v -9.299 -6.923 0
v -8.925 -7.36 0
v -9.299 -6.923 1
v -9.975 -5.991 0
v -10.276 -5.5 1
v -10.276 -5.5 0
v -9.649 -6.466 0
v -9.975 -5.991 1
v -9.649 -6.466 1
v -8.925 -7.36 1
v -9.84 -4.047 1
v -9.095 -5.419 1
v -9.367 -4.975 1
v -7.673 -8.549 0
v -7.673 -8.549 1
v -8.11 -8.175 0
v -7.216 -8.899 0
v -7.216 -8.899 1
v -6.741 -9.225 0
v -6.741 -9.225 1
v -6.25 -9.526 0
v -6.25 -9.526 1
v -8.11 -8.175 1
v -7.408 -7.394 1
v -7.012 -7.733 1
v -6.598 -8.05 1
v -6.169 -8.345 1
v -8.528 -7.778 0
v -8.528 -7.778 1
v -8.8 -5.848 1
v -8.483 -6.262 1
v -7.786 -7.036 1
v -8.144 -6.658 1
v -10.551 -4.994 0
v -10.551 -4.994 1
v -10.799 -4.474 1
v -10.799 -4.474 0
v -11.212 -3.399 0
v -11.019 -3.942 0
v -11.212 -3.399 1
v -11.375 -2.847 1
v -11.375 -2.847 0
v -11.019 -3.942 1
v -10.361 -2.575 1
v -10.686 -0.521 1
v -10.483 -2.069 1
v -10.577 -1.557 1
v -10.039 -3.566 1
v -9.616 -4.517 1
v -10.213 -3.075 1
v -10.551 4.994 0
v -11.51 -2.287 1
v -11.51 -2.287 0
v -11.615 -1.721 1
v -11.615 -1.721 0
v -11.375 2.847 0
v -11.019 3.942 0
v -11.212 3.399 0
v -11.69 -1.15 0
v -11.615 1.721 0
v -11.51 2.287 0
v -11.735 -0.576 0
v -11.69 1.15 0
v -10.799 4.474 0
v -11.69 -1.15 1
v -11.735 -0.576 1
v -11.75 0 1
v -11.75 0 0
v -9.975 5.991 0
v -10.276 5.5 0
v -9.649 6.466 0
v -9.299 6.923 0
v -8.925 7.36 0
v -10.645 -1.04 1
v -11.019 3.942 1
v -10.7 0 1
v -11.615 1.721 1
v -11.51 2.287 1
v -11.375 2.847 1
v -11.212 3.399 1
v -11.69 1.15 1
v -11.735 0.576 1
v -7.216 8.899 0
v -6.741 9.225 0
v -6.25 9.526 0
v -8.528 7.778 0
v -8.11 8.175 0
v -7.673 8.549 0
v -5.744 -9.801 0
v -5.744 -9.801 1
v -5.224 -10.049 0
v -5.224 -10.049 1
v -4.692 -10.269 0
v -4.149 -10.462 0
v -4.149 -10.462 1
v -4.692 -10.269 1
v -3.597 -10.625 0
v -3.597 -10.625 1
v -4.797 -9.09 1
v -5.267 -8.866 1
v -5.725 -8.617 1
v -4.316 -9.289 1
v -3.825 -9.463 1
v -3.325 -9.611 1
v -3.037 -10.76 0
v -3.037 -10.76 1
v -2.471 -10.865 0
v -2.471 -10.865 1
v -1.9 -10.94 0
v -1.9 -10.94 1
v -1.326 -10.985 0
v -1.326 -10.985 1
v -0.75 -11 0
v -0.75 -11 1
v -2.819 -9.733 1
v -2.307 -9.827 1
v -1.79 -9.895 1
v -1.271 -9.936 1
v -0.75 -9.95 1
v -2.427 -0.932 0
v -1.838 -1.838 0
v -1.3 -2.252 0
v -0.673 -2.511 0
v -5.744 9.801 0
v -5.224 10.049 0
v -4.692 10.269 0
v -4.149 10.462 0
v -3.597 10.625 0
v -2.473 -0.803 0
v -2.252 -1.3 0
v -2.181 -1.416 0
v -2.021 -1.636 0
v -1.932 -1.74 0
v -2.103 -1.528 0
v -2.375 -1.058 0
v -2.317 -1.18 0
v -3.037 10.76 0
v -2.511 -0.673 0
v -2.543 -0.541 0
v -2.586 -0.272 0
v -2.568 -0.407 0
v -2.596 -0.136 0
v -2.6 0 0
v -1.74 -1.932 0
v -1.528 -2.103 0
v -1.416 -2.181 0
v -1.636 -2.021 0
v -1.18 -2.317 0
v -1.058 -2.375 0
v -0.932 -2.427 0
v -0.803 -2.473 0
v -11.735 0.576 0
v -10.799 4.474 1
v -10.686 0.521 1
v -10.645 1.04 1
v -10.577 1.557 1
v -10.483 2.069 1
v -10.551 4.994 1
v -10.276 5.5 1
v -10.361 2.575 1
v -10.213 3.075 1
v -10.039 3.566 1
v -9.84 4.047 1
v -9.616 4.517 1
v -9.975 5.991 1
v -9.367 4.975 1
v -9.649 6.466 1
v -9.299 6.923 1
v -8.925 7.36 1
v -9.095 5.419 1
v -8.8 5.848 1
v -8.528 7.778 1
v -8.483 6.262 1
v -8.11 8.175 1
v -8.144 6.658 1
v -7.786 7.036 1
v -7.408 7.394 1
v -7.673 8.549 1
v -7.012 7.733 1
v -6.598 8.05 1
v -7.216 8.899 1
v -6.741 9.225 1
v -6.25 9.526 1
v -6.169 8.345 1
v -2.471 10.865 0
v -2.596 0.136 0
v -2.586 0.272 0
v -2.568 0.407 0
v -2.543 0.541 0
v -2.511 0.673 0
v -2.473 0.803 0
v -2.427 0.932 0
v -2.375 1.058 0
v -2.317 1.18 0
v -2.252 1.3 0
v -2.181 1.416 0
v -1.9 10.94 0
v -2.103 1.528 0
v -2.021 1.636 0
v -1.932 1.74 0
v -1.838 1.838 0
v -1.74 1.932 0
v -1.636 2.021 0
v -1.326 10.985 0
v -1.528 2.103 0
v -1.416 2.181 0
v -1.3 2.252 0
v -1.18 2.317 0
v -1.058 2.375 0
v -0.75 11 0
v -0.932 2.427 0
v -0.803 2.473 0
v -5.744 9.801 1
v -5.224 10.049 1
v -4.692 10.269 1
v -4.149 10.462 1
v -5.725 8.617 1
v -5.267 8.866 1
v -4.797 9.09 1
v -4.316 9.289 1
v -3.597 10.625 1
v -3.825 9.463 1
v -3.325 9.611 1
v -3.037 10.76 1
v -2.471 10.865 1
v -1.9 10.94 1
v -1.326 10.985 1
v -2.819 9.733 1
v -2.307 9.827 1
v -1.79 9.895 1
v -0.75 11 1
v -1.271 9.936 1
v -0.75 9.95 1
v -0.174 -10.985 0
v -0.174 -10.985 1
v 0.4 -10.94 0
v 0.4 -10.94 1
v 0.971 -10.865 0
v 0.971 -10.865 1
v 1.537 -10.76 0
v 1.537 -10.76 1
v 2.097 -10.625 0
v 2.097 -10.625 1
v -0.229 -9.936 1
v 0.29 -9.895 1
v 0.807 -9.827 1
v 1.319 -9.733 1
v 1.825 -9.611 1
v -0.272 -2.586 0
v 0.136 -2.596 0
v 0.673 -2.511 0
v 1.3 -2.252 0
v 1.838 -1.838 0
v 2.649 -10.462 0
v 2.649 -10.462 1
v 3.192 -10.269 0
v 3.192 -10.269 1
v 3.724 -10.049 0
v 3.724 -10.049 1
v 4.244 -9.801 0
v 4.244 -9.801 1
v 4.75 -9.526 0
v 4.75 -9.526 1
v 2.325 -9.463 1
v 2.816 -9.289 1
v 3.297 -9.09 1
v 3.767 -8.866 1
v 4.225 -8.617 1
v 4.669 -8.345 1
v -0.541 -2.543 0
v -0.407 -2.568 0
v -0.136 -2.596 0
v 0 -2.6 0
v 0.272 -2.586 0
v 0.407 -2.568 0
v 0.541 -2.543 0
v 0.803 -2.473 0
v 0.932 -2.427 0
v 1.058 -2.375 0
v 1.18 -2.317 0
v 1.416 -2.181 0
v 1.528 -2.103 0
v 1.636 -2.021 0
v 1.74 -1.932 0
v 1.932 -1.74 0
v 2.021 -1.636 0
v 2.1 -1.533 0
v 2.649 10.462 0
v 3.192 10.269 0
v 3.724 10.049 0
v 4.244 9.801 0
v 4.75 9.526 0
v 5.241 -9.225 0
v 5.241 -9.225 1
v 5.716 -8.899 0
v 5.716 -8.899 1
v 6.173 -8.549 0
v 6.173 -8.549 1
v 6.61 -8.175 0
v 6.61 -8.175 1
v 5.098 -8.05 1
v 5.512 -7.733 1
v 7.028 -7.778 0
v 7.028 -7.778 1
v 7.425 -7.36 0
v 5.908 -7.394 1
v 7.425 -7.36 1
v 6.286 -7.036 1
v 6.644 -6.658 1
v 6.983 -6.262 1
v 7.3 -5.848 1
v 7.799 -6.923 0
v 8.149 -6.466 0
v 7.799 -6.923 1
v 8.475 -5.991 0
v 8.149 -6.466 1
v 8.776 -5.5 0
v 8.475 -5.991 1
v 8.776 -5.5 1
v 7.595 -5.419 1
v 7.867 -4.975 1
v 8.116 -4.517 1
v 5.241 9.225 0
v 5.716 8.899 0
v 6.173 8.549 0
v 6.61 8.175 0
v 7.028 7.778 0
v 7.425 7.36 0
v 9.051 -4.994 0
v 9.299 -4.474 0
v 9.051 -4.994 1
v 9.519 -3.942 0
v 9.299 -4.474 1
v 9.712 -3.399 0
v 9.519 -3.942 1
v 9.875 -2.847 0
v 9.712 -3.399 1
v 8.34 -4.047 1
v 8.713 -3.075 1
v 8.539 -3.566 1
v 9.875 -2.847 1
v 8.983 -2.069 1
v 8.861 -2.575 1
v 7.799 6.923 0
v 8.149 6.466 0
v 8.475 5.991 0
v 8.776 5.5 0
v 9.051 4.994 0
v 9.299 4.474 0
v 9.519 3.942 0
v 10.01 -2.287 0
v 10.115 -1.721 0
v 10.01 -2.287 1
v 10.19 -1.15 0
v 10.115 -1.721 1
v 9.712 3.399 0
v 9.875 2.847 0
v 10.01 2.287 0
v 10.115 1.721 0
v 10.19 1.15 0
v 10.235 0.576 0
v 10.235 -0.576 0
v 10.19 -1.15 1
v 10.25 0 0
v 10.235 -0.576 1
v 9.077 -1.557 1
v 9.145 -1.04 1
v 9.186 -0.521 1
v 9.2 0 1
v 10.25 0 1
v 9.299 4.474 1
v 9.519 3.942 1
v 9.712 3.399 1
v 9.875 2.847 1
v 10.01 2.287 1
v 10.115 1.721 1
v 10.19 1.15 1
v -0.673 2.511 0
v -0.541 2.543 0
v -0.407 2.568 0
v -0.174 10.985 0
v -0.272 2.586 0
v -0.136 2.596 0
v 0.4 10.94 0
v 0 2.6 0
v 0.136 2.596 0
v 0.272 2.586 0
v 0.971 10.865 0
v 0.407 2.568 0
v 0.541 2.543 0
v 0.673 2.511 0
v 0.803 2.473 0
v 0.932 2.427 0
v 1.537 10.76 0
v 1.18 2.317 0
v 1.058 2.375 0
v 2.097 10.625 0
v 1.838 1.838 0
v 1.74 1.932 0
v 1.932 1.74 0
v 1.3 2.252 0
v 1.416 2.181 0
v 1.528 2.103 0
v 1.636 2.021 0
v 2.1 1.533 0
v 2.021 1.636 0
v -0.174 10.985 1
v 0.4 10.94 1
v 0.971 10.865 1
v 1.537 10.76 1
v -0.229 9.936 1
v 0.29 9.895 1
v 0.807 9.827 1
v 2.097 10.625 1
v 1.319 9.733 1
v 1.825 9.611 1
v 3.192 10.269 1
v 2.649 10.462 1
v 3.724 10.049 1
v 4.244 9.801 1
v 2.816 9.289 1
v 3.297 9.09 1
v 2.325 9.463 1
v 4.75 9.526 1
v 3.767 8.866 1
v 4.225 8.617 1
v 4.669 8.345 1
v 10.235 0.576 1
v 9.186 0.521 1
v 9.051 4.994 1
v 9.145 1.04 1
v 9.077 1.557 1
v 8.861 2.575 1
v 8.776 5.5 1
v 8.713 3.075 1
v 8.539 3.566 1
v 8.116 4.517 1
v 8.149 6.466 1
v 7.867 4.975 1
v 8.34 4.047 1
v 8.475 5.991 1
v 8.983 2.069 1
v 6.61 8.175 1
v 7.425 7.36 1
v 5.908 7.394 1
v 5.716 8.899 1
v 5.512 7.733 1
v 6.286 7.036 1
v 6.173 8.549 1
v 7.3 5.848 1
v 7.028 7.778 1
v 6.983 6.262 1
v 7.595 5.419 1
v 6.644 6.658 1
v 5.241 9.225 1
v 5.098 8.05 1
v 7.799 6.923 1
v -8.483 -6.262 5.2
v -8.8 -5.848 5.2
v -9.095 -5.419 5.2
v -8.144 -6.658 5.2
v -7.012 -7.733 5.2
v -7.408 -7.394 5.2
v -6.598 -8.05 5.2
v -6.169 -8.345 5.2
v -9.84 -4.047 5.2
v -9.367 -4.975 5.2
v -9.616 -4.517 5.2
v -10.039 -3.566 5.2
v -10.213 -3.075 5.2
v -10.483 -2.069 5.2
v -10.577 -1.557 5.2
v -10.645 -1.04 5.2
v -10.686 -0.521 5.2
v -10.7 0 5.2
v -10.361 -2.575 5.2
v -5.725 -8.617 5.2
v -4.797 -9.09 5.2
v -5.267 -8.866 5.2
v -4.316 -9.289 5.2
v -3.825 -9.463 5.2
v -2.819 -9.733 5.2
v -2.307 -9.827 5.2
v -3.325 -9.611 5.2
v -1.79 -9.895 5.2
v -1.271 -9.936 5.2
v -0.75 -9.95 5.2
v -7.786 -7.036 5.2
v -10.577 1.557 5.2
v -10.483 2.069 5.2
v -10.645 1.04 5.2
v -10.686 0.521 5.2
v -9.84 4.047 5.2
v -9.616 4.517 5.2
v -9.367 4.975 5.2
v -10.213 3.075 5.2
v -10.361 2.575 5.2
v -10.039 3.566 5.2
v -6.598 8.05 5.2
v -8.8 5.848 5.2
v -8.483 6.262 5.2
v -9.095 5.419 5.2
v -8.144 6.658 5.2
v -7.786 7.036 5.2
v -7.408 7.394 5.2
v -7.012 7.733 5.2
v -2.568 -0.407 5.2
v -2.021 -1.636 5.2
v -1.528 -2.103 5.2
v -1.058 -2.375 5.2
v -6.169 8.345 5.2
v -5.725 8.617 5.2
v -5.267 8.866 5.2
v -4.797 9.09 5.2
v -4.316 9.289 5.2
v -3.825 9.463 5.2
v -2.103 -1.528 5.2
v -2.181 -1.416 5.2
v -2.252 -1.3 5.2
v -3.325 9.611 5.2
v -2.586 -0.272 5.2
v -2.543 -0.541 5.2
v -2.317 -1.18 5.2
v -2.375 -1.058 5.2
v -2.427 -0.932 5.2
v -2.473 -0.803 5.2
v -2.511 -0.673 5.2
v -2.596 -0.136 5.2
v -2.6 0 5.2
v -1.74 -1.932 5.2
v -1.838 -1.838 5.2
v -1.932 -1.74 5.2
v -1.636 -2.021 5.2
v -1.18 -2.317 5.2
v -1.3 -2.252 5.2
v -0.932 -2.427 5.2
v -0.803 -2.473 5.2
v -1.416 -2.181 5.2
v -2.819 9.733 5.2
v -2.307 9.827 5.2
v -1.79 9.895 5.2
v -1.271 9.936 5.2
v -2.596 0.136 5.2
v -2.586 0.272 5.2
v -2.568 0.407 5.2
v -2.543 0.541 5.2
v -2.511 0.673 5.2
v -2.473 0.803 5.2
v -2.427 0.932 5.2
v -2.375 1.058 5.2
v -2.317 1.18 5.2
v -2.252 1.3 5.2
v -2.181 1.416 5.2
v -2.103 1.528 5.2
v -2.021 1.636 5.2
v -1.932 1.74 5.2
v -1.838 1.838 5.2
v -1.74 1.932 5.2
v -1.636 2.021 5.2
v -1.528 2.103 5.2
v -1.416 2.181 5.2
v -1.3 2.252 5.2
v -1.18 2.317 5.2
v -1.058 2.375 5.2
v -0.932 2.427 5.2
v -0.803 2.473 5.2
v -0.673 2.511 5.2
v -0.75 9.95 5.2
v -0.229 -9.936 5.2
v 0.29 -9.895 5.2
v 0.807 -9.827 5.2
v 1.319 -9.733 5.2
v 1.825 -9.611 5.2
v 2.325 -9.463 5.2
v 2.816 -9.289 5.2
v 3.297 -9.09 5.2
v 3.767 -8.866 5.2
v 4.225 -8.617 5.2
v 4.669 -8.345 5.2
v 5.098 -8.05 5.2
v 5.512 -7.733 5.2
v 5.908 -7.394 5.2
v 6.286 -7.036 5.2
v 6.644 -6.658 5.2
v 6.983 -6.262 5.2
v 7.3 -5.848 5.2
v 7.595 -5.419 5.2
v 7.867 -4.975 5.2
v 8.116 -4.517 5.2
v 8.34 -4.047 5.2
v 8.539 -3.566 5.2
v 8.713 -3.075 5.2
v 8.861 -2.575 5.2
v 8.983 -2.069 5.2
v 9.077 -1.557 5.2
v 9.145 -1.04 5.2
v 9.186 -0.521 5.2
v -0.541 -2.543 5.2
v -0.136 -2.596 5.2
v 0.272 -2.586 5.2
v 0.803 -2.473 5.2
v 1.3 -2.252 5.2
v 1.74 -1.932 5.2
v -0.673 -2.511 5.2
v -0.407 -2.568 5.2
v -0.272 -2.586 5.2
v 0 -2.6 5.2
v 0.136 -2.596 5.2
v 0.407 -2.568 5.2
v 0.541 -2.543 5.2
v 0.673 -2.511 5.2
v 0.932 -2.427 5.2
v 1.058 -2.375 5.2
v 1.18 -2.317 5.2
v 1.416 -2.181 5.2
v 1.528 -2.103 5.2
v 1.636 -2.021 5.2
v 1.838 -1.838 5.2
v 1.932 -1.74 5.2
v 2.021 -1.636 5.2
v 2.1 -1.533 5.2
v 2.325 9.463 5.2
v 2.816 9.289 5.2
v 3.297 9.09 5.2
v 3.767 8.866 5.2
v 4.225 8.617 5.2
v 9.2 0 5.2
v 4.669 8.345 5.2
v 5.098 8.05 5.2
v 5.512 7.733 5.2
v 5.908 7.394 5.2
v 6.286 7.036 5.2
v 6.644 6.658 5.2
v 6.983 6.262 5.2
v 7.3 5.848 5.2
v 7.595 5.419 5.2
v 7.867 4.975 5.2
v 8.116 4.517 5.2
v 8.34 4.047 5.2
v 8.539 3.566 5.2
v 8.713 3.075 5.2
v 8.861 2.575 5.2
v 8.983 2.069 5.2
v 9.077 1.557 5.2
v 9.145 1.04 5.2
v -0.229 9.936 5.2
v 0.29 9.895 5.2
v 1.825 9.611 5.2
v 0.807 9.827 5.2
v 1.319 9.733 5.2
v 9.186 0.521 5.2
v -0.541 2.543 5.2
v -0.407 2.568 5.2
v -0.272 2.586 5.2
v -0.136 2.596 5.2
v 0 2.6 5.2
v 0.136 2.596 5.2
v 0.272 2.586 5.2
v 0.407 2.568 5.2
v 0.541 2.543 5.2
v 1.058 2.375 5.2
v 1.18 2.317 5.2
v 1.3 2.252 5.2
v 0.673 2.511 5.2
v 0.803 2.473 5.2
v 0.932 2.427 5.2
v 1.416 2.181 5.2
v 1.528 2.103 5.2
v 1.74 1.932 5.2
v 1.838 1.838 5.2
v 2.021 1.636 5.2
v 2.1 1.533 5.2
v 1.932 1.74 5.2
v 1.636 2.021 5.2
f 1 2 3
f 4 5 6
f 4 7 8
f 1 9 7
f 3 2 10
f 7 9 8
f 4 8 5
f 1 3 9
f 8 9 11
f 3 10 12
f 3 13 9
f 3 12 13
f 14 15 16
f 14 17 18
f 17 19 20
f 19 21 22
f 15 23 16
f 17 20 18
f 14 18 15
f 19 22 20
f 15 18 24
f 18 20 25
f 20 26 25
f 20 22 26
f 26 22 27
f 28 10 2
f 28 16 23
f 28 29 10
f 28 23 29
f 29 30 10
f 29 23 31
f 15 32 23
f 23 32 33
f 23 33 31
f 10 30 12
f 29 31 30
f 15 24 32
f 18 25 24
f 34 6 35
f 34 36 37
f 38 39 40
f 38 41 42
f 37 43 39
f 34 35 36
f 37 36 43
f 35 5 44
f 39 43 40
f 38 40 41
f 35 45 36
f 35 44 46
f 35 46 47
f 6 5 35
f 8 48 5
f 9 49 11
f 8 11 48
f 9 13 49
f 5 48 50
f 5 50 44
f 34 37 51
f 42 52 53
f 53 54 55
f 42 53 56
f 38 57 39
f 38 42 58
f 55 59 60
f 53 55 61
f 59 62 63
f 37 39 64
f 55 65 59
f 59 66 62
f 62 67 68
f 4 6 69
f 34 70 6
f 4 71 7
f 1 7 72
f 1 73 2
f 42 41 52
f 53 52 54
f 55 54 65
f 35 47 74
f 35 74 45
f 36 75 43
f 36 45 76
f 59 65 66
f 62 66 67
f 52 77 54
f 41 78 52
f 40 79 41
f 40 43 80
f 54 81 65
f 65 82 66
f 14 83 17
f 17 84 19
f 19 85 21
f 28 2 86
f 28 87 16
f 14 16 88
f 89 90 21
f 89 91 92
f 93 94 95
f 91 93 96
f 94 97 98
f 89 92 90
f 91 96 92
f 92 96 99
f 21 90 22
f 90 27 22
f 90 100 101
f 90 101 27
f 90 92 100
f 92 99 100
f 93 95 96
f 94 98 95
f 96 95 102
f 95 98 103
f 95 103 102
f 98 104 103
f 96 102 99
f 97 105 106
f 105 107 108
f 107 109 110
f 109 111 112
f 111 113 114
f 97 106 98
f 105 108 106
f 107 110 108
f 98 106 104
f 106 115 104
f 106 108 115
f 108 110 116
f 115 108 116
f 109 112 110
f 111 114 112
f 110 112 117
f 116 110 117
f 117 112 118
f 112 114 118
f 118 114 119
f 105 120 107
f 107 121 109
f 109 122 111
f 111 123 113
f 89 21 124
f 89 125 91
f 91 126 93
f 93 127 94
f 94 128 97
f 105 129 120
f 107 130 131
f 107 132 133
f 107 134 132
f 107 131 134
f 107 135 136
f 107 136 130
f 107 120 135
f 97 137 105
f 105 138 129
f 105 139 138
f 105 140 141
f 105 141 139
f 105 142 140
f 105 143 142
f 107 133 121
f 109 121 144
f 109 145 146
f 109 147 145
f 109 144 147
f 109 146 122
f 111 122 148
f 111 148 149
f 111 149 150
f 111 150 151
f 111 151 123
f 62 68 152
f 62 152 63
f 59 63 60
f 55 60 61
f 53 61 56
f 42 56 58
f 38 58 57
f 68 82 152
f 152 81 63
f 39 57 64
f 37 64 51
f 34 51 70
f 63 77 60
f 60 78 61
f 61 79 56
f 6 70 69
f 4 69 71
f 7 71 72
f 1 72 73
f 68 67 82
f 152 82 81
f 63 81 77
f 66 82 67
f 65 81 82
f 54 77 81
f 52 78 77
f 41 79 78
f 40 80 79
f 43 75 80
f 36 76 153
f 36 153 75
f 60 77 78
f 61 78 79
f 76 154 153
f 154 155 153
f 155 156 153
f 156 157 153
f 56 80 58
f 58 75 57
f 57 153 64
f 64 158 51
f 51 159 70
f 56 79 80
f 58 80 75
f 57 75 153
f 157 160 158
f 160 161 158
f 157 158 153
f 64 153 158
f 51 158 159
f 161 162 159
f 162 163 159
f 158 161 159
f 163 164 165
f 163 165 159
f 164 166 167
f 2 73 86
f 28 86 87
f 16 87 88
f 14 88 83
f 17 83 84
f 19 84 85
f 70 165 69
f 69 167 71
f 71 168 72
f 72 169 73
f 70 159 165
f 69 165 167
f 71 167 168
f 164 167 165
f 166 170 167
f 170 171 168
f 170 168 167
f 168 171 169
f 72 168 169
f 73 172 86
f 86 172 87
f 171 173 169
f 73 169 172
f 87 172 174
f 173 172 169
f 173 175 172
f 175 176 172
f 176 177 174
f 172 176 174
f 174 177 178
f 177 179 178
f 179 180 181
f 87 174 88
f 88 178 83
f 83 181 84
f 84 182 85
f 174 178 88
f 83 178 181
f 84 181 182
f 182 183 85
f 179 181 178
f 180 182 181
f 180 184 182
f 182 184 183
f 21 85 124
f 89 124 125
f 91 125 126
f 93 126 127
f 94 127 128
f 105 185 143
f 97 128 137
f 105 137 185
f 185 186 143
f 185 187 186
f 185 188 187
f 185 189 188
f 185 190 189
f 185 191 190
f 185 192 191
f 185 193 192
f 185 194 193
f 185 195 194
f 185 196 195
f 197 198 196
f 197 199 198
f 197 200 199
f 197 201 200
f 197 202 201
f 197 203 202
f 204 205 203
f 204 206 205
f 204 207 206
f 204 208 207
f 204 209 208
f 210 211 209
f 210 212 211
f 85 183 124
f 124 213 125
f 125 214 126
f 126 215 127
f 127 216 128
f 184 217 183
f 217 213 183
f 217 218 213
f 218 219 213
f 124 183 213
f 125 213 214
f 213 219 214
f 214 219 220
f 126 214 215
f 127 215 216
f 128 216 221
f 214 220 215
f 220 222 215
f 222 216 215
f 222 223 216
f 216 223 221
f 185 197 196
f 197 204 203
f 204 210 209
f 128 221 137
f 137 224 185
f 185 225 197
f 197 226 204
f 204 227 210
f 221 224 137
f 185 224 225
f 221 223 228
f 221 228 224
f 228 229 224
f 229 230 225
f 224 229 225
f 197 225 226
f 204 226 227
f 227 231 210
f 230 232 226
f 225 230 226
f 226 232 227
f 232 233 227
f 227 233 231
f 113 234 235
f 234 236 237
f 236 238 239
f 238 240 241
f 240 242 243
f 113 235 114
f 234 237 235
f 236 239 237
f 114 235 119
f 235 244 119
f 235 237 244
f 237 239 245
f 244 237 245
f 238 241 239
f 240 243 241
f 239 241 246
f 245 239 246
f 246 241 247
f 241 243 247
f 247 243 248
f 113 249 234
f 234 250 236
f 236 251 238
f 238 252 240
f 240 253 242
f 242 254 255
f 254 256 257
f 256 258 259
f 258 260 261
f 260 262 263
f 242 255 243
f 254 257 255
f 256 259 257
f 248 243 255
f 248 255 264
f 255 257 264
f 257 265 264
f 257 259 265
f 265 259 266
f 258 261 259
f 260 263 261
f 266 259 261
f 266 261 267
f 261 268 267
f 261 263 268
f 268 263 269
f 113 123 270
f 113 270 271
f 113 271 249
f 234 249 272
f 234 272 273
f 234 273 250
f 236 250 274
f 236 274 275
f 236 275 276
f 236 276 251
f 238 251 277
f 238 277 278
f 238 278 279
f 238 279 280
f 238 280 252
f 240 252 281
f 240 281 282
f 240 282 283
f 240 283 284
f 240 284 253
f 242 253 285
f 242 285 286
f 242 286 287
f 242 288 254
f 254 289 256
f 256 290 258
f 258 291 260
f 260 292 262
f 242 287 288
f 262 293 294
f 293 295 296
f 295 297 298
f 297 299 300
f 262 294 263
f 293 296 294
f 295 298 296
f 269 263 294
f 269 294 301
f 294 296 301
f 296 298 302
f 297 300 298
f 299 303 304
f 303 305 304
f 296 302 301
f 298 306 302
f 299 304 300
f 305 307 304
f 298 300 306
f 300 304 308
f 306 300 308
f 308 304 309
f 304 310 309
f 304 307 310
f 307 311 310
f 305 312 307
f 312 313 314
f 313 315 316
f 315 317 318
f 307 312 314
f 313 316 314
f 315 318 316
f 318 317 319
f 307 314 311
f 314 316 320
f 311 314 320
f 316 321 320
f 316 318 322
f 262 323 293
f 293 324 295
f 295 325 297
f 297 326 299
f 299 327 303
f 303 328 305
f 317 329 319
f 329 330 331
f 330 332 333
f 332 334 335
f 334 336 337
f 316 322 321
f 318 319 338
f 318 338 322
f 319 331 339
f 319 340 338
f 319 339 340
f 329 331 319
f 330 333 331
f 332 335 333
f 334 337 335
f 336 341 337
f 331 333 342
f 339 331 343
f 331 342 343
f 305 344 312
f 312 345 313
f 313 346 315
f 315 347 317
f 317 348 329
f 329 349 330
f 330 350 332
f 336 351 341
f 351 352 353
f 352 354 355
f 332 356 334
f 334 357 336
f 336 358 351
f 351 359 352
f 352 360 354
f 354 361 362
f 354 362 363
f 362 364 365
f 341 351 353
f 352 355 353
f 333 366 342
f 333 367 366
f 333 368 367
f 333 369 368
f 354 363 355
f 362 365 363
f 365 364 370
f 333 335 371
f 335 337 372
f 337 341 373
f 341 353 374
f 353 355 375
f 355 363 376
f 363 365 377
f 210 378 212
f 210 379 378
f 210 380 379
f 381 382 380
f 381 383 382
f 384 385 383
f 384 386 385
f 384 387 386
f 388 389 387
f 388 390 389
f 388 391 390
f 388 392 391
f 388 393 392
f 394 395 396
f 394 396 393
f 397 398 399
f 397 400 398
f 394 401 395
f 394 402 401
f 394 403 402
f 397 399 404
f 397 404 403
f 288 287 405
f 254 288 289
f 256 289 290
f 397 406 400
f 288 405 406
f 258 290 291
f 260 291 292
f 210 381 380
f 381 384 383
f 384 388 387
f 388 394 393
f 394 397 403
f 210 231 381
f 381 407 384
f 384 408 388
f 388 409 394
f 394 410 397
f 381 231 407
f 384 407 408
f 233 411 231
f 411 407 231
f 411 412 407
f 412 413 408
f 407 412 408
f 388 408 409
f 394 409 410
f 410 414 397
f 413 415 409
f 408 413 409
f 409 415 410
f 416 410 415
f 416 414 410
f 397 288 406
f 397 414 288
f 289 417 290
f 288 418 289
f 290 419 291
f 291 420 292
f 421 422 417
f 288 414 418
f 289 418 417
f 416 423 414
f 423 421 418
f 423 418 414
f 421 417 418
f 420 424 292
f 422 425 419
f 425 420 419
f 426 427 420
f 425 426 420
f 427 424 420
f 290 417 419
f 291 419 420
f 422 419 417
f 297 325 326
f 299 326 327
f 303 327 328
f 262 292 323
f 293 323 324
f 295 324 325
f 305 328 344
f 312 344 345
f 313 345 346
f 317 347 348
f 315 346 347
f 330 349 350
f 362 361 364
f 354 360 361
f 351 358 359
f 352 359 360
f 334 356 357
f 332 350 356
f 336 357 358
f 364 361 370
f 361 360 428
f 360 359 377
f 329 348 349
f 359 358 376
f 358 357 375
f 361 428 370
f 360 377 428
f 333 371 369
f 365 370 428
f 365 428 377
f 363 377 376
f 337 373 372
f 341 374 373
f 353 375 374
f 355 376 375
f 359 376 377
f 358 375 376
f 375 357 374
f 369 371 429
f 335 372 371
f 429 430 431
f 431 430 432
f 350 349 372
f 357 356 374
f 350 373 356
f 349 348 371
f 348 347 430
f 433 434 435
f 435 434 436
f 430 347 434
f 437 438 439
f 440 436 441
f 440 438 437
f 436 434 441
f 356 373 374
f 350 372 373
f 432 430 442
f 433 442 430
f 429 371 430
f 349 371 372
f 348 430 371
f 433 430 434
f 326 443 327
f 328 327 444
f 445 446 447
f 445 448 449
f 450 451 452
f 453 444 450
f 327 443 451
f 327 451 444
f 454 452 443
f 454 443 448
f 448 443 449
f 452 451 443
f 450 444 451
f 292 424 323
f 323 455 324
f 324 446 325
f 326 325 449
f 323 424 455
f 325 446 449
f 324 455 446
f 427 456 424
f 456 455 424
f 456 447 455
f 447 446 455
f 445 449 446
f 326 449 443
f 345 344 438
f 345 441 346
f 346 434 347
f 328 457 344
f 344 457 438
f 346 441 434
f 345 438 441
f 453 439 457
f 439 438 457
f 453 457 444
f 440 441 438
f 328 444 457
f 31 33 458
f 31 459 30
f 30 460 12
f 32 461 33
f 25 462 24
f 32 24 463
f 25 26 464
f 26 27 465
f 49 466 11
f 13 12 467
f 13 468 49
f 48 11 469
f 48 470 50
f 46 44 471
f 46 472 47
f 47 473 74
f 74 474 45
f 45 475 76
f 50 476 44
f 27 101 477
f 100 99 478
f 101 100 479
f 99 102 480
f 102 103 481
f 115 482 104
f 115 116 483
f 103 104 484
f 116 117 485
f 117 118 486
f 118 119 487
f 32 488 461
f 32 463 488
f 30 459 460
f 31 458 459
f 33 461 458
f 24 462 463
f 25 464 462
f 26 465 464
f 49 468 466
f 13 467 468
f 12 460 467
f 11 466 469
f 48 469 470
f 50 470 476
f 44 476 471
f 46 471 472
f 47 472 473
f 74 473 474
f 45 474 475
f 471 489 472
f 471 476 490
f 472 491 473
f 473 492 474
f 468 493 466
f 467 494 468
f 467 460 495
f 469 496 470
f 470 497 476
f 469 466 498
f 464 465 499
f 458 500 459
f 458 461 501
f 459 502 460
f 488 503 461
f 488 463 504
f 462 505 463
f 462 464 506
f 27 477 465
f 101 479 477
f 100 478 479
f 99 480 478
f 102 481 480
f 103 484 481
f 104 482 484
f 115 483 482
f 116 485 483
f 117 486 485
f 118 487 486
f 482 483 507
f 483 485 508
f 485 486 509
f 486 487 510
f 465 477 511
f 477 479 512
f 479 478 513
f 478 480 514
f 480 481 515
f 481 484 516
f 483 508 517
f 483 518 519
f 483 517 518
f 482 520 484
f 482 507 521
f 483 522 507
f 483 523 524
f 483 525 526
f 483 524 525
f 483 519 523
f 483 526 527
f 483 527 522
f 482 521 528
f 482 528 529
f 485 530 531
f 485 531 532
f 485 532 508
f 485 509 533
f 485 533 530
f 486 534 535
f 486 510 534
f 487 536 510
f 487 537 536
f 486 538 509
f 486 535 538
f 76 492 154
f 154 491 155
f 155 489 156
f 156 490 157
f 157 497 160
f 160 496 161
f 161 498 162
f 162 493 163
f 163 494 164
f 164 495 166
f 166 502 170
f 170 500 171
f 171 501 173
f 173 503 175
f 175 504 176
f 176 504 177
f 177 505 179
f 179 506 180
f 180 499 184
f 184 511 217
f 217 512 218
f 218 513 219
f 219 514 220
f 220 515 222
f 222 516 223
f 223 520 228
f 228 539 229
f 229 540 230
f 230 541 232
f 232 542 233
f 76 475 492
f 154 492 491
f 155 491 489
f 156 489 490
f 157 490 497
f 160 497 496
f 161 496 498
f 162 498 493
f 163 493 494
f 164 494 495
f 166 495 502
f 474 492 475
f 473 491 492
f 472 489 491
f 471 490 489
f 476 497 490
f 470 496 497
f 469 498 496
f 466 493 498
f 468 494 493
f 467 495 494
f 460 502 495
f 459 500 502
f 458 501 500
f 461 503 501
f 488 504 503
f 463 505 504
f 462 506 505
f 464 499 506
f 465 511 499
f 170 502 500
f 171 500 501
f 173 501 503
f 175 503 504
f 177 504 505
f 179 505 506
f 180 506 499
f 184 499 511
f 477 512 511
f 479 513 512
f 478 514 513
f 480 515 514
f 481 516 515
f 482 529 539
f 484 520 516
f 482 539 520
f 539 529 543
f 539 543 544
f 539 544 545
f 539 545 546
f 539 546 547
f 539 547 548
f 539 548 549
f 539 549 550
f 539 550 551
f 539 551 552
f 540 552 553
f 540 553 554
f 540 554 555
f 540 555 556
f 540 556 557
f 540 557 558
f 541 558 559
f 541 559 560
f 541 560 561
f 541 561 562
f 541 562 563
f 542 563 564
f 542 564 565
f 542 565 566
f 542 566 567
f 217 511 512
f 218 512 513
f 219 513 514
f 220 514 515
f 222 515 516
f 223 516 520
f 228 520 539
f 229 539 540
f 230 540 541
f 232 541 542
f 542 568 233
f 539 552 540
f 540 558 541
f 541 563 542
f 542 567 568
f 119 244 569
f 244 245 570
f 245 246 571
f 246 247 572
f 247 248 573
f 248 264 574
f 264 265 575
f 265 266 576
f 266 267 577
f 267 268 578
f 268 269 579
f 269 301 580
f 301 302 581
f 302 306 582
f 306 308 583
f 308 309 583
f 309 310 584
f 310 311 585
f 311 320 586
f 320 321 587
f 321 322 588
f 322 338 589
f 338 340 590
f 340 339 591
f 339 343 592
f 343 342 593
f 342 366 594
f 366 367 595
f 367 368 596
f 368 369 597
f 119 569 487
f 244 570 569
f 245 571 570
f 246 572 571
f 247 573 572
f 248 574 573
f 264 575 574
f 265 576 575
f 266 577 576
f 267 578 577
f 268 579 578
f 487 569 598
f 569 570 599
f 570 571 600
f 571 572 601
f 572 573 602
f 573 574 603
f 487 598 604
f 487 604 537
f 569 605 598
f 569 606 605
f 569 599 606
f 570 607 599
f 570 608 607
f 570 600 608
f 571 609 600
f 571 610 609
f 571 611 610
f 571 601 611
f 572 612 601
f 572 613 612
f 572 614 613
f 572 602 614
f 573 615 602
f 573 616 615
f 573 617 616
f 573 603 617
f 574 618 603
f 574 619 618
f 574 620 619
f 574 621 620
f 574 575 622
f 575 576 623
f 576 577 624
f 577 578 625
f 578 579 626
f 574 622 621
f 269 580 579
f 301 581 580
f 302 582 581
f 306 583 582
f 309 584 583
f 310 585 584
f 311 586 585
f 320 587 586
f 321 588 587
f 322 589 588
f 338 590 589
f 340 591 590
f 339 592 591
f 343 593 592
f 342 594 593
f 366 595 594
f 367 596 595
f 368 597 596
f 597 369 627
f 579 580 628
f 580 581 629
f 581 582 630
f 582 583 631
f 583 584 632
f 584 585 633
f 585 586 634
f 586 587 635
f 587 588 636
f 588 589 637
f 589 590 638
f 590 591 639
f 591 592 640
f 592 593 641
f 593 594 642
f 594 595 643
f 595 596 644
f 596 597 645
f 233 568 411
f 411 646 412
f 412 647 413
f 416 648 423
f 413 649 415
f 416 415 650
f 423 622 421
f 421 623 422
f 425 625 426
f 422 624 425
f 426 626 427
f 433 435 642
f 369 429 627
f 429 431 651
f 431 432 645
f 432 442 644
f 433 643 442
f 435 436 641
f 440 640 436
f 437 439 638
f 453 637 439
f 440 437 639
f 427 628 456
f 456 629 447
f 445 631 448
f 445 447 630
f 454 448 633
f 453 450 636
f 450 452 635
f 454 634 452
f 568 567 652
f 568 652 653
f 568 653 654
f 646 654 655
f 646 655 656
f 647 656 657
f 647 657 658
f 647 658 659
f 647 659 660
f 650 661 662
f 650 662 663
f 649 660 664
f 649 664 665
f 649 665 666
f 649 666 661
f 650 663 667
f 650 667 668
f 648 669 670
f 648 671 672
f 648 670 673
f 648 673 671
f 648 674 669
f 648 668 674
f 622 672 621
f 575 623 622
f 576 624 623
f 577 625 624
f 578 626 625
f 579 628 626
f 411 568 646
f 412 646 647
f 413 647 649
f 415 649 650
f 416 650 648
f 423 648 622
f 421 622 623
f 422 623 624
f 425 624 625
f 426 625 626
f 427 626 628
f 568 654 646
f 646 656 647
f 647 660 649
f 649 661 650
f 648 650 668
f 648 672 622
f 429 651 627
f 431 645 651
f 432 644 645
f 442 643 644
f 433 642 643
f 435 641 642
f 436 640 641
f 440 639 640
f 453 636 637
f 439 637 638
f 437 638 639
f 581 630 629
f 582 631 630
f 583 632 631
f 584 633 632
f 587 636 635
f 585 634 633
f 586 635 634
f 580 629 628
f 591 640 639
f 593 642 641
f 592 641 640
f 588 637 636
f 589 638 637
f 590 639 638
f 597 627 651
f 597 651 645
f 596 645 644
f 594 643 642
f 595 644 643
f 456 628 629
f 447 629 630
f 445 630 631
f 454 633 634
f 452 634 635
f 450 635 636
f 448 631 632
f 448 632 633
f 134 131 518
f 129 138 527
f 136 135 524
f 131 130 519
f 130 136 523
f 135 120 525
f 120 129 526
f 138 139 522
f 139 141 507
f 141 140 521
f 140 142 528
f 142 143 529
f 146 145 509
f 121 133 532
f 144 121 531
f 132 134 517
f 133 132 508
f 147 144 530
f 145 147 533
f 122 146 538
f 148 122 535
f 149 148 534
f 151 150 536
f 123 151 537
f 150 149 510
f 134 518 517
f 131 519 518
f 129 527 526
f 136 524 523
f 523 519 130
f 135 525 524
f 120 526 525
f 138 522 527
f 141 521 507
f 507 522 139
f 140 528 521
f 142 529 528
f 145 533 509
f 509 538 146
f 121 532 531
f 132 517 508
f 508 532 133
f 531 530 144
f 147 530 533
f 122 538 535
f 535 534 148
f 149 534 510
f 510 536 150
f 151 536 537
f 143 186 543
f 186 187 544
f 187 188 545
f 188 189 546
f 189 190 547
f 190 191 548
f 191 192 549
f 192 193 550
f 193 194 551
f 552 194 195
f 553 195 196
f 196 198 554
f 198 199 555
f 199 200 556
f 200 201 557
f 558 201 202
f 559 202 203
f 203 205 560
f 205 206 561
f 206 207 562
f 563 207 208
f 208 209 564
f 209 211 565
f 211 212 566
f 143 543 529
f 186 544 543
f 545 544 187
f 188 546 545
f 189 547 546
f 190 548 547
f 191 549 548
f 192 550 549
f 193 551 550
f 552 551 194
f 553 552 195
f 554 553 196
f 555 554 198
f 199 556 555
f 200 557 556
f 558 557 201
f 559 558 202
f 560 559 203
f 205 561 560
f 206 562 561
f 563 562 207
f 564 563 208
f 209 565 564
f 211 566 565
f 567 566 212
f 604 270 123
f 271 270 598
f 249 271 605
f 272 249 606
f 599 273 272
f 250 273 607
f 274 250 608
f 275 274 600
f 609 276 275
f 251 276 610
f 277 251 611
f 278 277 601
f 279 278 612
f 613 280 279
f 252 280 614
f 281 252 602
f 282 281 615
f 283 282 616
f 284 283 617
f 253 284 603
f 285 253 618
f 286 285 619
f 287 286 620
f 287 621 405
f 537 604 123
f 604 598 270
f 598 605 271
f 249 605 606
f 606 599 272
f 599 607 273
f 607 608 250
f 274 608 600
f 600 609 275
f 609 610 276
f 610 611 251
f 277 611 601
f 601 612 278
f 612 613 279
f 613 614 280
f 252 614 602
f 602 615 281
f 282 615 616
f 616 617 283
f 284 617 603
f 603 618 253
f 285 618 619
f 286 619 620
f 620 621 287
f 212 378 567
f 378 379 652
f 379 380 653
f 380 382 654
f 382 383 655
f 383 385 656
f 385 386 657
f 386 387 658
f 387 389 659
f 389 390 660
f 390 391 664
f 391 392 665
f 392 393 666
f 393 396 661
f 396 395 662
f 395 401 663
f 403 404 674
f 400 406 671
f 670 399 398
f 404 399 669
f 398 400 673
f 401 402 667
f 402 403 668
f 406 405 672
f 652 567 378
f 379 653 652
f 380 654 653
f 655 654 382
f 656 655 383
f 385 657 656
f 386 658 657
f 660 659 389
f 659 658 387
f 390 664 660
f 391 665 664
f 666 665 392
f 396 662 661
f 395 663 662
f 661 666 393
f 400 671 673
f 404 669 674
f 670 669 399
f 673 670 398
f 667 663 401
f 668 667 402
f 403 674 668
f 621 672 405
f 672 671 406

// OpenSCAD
// file: oobb_hardware.scad
// Generated from installed OOBB v5. All primitives use overhang=True.

module oobb_hole_m2() {
difference() {
	union() {
		cylinder(h = 1, r = 1.35);
	}
	union();
}

}

module oobb_hole_m3() {
difference() {
	union() {
		cylinder(h = 1, r = 1.8);
	}
	union();
}

}

module oobb_hole_m6() {
difference() {
	union() {
		cylinder(h = 1, r = 3.25);
	}
	union();
}

}

module oobb_nut_m2() {
difference() {
	union() {
		translate(v = [0, 0, 0]) {
			rotate(a = [0, 0, 0]) {
				difference() {
					union() {
						linear_extrude(height = 2.2) {
							polygon(points = [[2.4234, 0.0], [1.2117000000000002, 2.0987259635312085], [-1.2116999999999996, 2.0987259635312085], [-2.4234, 2.967809053053696e-16], [-1.211700000000001, -2.098725963531208], [1.2116999999999984, -2.0987259635312094]]);
						}
						translate(v = [-1.25, -2.75, -0.3]) {
							cube(size = [2.5, 5.5, 0.3]);
						}
						translate(v = [-1.25, -1.25, -0.6]) {
							cube(size = [2.5, 2.5, 0.3]);
						}
						translate(v = [-1.25, -2.75, 2.2]) {
							cube(size = [2.5, 5.5, 0.3]);
						}
						translate(v = [-1.25, -1.25, 2.5]) {
							cube(size = [2.5, 2.5, 0.3]);
						}
					}
					union();
				}
			}
		}
	}
	union();
}

}

module oobb_socket_m2() {
difference() {
	union() {
		translate(v = [0, 0, 0]) {
			rotate(a = [0, 0, 0]) {
				difference() {
					union() {
						cylinder(h = 2.2, r = 2.1);
						translate(v = [-1.25, -2.75, -0.3]) {
							cube(size = [2.5, 5.5, 0.3]);
						}
						translate(v = [-1.25, -1.25, -0.6]) {
							cube(size = [2.5, 2.5, 0.3]);
						}
					}
					union();
				}
			}
		}
	}
	union();
}

}

module oobb_nut_m3() {
difference() {
	union() {
		translate(v = [0, 0, 0]) {
			rotate(a = [0, 0, 0]) {
				difference() {
					union() {
						linear_extrude(height = 2.7) {
							polygon(points = [[3.4619999999999997, 0.0], [1.7310000000000003, 2.9981799479017264], [-1.7309999999999992, 2.9981799479017264], [-3.4619999999999997, 4.2397272186481365e-16], [-1.7310000000000014, -2.998179947901726], [1.7309999999999977, -2.9981799479017277]]);
						}
						translate(v = [-1.75, -3.25, -0.3]) {
							cube(size = [3.5, 6.5, 0.3]);
						}
						translate(v = [-1.75, -1.75, -0.6]) {
							cube(size = [3.5, 3.5, 0.3]);
						}
						translate(v = [-1.75, -3.25, 2.7]) {
							cube(size = [3.5, 6.5, 0.3]);
						}
						translate(v = [-1.75, -1.75, 3.0]) {
							cube(size = [3.5, 3.5, 0.3]);
						}
					}
					union();
				}
			}
		}
	}
	union();
}

}

module oobb_socket_m3() {
difference() {
	union() {
		translate(v = [0, 0, 0]) {
			rotate(a = [0, 0, 0]) {
				difference() {
					union() {
						cylinder(h = 3.2, r = 3.0);
						translate(v = [-1.75, -3.25, -0.3]) {
							cube(size = [3.5, 6.5, 0.3]);
						}
						translate(v = [-1.75, -1.75, -0.6]) {
							cube(size = [3.5, 3.5, 0.3]);
						}
					}
					union();
				}
			}
		}
	}
	union();
}

}
// file: parameters.scad
// Generated by working_scad.py. Edit the Python recipe to persist changes.
style = "version_5";
reduction = 20;
bearing_output = "6810";
bearing_input = "6704";
bearing_wave = "6704";
roller_diameter = 7.0;
roller_bore_diameter = 3.2;
roller_length = 12.0;
roller_material = "nylon";
central_joint_depth = 6.0;
max_screw_length = 35.0;
eccentricity = 0.75;
wave_radius = 40.0;
profile_clearance = 0.15;
roller_slot_clearance = 0.3;
roller_end_clearance = 0.3;
cage_wall = 4.0;
cage_plate_depth = 3.0;
bearing_seat_clearance = 0.1;
journal_clearance = 0.05;
bearing_axial_clearance = 0.2;
retainer_depth = 4.0;
housing_radius = 57.5;
housing_flange_width = 119.0;
housing_flange_depth = 3.0;
housing_flange_corner_radius = 1.5;
housing_screw_pitch_radius = 53.0;
housing_screw_count = 8;
input_shaft_diameter = 5.0;
input_shaft_flat_depth = 0.5;
shaft_fit_clearance = 0.1;
cage_screw_count = 5;
cage_screw_pilot_diameter = 1.6;
profile_samples_per_cavity = 100;
circle_fragments = 120;
overhang = true;
run_scad = true;
run_solidcraft = false;
// main file
include <parameters.scad>;
use <oobb_hardware.scad>;
include <geometry.scad>;
eccentric_cam(true);
